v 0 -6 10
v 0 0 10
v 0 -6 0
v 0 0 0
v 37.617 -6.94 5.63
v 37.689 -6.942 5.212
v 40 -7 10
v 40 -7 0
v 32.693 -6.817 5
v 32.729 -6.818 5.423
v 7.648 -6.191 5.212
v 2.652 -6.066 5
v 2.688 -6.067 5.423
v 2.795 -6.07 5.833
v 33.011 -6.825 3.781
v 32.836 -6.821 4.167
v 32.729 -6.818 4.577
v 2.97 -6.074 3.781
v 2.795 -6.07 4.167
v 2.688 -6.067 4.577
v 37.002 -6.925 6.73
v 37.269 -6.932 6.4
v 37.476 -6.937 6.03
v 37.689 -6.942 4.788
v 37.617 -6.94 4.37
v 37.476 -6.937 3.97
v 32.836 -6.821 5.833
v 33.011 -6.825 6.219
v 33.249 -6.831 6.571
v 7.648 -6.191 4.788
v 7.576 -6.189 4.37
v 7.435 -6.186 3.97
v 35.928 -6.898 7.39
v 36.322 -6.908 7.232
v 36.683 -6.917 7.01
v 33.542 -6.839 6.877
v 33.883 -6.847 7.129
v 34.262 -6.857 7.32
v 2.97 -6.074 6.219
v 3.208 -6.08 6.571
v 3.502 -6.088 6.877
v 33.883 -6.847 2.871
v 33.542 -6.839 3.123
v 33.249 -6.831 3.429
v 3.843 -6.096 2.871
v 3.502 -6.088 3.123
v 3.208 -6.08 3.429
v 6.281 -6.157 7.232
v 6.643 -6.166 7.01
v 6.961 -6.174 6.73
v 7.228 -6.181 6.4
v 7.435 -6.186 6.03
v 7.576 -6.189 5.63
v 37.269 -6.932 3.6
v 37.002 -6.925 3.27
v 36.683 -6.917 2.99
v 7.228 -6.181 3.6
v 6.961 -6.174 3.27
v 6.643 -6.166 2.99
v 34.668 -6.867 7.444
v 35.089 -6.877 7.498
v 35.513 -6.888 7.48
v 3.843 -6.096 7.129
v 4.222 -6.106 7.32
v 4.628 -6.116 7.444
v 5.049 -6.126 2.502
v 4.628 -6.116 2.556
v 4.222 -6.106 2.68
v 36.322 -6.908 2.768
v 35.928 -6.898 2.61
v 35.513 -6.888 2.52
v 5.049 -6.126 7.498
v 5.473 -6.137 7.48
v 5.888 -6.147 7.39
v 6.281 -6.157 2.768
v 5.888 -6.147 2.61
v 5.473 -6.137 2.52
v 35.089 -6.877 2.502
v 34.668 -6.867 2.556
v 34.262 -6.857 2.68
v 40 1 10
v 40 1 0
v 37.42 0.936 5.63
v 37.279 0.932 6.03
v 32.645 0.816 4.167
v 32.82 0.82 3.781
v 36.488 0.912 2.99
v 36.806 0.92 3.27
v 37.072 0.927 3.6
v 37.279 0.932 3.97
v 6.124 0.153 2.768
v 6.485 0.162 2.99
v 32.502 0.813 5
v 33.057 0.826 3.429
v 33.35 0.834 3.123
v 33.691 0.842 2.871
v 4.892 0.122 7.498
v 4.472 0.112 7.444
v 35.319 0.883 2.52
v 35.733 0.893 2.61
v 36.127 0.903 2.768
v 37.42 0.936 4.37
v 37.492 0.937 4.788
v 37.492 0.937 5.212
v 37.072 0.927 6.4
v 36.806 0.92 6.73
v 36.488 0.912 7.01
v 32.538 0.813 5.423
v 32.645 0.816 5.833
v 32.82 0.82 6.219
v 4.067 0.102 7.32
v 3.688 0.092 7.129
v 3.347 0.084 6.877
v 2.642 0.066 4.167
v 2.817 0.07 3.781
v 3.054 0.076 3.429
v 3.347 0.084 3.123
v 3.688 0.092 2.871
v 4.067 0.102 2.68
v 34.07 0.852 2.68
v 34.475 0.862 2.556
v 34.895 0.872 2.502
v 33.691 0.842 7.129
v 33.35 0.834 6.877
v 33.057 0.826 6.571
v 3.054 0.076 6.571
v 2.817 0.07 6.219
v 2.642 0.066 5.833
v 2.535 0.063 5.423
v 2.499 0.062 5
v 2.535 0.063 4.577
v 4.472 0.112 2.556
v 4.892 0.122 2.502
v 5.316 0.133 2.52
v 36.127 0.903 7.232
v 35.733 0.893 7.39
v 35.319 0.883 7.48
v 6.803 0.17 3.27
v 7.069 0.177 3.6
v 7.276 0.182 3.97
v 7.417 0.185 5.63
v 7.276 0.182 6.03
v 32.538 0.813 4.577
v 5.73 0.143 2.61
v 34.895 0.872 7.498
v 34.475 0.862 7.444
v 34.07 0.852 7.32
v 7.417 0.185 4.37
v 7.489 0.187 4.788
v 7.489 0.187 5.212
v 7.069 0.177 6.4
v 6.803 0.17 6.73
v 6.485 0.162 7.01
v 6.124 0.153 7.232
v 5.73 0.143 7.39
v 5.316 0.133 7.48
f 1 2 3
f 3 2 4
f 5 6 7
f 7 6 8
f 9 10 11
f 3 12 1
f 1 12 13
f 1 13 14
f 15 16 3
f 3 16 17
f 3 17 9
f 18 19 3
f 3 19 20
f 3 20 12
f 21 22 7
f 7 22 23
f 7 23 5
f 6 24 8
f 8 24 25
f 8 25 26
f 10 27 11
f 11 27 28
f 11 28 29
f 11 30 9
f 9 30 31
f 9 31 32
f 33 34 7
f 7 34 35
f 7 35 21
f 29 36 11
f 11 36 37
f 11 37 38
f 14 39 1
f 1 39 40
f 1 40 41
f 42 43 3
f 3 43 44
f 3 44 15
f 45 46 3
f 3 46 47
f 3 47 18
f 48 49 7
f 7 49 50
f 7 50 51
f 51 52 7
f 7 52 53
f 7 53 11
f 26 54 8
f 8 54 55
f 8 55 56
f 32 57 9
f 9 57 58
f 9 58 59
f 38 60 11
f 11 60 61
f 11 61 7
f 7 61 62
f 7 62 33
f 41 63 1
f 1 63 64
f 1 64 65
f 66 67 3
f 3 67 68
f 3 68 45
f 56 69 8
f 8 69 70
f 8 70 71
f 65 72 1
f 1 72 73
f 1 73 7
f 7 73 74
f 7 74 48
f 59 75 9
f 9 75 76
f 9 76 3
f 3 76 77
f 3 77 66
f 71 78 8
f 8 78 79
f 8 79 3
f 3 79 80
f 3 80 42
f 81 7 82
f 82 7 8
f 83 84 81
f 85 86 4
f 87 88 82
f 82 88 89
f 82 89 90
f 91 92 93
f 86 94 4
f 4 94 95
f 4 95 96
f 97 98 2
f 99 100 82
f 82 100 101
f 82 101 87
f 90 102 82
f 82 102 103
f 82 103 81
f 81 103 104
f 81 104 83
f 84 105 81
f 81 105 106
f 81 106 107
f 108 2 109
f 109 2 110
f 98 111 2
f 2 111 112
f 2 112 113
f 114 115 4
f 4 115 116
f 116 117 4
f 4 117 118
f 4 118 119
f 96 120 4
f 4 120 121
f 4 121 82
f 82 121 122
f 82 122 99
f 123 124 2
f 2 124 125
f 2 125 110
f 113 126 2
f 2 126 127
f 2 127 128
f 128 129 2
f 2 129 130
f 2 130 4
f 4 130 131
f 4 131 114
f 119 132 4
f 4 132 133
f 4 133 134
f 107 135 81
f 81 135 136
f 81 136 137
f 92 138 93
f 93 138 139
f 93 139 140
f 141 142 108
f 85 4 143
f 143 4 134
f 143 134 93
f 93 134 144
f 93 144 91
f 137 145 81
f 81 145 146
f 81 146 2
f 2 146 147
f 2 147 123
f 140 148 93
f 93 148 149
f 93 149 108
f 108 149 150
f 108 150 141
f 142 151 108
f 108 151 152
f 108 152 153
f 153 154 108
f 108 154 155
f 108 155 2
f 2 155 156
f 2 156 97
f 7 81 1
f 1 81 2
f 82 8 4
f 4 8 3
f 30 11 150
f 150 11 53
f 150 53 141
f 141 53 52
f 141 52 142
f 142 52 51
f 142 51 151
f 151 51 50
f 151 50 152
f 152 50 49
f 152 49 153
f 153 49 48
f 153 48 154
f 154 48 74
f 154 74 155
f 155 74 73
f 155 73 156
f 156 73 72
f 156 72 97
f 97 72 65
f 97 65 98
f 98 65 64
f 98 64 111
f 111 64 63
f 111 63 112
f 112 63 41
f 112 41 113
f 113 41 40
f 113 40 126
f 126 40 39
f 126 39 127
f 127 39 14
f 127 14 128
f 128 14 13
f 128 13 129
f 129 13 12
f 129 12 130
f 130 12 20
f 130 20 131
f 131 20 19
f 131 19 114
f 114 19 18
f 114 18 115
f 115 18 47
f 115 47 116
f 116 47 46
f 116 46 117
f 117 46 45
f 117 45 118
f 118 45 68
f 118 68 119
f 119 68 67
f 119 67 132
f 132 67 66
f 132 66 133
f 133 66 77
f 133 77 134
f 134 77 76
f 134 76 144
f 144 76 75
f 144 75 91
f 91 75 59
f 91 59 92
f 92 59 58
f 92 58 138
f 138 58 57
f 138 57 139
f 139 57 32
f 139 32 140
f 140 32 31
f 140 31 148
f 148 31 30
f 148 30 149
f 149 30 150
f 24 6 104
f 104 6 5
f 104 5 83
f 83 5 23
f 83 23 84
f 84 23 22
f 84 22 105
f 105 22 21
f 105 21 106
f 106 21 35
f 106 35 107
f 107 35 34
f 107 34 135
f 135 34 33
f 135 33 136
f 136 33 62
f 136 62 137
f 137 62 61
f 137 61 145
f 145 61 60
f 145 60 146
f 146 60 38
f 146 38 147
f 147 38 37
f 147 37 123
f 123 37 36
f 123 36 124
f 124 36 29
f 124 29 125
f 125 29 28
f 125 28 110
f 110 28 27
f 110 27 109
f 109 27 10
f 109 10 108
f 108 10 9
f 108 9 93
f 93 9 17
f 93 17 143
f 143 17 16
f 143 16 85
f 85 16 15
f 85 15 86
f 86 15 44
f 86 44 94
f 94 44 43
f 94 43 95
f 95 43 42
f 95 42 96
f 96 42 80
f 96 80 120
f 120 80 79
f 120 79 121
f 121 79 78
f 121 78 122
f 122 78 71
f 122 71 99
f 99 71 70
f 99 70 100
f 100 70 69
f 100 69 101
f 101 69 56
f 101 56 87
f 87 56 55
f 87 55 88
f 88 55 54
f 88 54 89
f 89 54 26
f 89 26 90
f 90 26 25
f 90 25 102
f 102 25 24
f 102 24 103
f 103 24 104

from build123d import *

# Parameters (mm, degrees)
BOSS_EXTRU_1_DEPTH      = 10
ESQUISSE2_R             = 2.5
ENL_V_MAT_EXTRU_1_DEPTH = 42.821047333


with BuildPart() as part:
    # Esquisse1 → Boss.-Extru.1 (new body)
    with BuildSketch(Plane.XY):
        Polygon((0, 0), (40, 1), (40, -7), (0, -6), align=None)
    extrude(amount=BOSS_EXTRU_1_DEPTH)

    # Esquisse2 → Enlèv. mat.-Extru.1 (cut, through all)
    with BuildSketch(Plane(origin=(0, 0, 0), x_dir=(0.9996876464081228, 0.024992191160203233, 0), z_dir=(-0.02499219116020323, 0.9996876464081227, 0))):
        with Locations(Location((5, -5, 0), (0, 0, 180))):
            Circle(ESQUISSE2_R)
        with Locations(Location((35.012498047, -5, 0), (0, 0, 180))):
            Circle(ESQUISSE2_R)
    extrude(amount=-ENL_V_MAT_EXTRU_1_DEPTH, mode=Mode.SUBTRACT)


solid = part.part
